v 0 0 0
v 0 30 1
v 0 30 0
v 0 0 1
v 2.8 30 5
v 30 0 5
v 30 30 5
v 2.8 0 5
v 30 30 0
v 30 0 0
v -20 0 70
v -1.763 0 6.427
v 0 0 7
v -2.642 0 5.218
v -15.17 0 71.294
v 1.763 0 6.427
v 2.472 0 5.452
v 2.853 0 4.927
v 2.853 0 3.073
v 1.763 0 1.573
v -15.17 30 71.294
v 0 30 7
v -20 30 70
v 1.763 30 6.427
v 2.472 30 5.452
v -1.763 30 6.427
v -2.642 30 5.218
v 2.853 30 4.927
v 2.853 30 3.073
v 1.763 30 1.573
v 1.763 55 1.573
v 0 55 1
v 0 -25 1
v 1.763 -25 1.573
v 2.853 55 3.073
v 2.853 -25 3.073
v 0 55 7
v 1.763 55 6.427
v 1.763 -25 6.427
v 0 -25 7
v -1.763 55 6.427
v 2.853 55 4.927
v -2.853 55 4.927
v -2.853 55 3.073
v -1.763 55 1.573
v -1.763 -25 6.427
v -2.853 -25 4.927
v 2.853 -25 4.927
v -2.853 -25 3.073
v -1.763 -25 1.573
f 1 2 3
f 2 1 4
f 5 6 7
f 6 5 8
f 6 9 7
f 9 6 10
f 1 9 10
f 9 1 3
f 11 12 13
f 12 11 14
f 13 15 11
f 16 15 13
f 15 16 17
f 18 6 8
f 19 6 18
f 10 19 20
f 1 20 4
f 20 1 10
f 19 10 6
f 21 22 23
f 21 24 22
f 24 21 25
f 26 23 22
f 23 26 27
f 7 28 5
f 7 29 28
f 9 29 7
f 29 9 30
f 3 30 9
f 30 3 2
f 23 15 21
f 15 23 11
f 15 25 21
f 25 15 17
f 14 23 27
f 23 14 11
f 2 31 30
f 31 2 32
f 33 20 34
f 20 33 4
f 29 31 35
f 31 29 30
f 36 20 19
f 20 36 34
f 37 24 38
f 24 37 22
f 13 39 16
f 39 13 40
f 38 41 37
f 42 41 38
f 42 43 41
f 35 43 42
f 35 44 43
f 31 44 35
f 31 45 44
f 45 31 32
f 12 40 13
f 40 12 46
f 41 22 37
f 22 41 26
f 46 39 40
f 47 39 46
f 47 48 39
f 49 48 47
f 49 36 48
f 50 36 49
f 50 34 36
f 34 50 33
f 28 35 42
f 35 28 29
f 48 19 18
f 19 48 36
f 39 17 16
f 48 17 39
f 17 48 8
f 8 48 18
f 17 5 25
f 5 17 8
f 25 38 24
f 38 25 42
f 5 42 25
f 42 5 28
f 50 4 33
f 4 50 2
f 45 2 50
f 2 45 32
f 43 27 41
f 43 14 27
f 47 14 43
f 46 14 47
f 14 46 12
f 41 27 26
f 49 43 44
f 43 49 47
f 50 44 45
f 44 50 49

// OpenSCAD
union(){
    translate([0,0,0])
    cube([30, 30, 5]);

    translate([-20,0,70])
    rotate([0,75,0])
    cube([70, 30, 5]);
    
    translate([0,55,4])
    rotate([90,90,0])
    cylinder(h=80, r=3, center = false);

}
